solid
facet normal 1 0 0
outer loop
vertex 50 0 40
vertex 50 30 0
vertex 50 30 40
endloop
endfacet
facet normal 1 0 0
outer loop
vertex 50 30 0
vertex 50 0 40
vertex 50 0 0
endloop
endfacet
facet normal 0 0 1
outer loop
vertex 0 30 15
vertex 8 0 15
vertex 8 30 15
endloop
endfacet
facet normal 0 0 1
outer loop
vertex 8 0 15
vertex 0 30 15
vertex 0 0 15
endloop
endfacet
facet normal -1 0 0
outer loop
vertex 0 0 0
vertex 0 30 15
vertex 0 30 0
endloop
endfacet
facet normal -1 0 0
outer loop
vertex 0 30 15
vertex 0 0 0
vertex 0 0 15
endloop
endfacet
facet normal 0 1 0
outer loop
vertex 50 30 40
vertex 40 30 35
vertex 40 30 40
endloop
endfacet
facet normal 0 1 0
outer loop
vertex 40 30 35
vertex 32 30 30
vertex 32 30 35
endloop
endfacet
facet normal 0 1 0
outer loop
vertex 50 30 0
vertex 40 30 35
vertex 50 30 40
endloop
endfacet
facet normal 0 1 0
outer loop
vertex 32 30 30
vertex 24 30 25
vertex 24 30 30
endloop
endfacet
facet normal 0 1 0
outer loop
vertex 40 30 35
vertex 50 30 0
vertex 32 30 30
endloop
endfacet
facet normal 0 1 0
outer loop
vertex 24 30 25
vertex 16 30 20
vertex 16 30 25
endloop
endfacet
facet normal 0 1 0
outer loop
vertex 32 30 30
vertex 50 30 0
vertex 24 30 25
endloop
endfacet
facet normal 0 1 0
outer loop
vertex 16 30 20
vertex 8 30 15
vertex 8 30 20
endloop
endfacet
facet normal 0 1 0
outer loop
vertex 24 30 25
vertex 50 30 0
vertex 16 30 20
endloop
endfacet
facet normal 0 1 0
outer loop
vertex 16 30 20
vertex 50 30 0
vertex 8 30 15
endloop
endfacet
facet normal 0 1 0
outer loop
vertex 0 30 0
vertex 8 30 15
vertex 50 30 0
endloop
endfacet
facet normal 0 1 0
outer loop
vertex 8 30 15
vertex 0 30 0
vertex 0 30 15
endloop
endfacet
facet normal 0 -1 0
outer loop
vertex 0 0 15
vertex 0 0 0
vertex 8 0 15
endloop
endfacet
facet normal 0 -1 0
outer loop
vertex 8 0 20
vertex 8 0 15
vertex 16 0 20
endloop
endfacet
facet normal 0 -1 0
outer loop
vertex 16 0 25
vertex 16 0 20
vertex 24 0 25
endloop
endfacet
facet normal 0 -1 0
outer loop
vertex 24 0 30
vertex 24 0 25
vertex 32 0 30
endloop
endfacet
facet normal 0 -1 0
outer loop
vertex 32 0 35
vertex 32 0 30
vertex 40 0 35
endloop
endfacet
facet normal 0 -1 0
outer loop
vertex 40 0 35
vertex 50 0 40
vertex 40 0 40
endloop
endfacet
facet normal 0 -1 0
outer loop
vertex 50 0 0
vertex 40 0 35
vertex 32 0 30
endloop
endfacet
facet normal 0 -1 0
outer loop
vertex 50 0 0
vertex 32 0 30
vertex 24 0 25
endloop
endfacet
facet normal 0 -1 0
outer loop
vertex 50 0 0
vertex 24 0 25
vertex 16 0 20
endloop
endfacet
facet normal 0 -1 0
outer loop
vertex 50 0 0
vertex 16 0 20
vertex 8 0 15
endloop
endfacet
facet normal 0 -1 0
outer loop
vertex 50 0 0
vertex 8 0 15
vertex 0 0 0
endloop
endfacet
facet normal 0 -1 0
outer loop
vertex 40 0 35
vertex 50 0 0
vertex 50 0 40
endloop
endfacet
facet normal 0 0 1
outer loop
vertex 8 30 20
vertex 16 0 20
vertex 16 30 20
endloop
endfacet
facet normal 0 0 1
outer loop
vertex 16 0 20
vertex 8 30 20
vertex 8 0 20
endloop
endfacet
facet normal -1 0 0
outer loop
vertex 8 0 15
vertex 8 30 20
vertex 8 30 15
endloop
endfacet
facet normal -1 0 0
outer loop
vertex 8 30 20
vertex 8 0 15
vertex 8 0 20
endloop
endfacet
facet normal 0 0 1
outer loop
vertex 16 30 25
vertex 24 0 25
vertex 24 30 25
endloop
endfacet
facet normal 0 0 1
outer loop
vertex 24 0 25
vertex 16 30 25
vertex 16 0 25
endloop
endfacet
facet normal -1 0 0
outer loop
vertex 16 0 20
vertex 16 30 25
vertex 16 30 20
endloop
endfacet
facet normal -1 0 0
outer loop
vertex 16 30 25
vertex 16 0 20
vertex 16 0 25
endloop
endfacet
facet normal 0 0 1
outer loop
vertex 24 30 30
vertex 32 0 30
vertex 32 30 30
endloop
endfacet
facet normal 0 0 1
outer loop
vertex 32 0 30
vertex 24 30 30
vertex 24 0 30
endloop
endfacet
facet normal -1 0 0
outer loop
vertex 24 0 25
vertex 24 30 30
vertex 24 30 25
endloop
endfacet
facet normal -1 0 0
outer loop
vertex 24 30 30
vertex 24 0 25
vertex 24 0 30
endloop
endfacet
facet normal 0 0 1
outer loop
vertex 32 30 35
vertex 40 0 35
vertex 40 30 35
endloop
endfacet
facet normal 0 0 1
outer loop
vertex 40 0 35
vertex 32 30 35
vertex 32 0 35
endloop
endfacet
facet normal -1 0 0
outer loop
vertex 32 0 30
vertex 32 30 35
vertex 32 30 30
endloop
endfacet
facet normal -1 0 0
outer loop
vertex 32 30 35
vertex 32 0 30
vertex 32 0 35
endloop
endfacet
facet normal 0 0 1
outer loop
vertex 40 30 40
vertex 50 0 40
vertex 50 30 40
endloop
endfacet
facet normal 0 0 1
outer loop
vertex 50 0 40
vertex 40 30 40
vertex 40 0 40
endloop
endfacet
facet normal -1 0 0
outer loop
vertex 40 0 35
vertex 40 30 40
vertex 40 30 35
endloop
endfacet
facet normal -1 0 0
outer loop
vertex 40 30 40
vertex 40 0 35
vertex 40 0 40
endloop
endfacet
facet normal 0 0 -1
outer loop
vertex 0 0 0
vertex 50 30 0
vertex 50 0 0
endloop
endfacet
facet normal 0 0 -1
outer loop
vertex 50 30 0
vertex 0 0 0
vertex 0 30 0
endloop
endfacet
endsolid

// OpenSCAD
// Parameters for the stepped block
base_length = 50;  // Length of the rectangular base
base_width = 30;   // Width of the rectangular base
base_height = 10;  // Height of the base
step_count = 6;    // Number of steps
step_height = 5;   // Height of each step
step_depth = 8;    // Depth of each step

module stepped_block() {
    // Base of the block
    cube([base_length, base_width, base_height]);

    // Steps
    for (i = [0:step_count-1]) {
        translate([i * step_depth, 0, base_height + i * step_height])
            cube([base_length - i * step_depth, base_width, step_height]);
    }
}

// Render the stepped block
stepped_block();
